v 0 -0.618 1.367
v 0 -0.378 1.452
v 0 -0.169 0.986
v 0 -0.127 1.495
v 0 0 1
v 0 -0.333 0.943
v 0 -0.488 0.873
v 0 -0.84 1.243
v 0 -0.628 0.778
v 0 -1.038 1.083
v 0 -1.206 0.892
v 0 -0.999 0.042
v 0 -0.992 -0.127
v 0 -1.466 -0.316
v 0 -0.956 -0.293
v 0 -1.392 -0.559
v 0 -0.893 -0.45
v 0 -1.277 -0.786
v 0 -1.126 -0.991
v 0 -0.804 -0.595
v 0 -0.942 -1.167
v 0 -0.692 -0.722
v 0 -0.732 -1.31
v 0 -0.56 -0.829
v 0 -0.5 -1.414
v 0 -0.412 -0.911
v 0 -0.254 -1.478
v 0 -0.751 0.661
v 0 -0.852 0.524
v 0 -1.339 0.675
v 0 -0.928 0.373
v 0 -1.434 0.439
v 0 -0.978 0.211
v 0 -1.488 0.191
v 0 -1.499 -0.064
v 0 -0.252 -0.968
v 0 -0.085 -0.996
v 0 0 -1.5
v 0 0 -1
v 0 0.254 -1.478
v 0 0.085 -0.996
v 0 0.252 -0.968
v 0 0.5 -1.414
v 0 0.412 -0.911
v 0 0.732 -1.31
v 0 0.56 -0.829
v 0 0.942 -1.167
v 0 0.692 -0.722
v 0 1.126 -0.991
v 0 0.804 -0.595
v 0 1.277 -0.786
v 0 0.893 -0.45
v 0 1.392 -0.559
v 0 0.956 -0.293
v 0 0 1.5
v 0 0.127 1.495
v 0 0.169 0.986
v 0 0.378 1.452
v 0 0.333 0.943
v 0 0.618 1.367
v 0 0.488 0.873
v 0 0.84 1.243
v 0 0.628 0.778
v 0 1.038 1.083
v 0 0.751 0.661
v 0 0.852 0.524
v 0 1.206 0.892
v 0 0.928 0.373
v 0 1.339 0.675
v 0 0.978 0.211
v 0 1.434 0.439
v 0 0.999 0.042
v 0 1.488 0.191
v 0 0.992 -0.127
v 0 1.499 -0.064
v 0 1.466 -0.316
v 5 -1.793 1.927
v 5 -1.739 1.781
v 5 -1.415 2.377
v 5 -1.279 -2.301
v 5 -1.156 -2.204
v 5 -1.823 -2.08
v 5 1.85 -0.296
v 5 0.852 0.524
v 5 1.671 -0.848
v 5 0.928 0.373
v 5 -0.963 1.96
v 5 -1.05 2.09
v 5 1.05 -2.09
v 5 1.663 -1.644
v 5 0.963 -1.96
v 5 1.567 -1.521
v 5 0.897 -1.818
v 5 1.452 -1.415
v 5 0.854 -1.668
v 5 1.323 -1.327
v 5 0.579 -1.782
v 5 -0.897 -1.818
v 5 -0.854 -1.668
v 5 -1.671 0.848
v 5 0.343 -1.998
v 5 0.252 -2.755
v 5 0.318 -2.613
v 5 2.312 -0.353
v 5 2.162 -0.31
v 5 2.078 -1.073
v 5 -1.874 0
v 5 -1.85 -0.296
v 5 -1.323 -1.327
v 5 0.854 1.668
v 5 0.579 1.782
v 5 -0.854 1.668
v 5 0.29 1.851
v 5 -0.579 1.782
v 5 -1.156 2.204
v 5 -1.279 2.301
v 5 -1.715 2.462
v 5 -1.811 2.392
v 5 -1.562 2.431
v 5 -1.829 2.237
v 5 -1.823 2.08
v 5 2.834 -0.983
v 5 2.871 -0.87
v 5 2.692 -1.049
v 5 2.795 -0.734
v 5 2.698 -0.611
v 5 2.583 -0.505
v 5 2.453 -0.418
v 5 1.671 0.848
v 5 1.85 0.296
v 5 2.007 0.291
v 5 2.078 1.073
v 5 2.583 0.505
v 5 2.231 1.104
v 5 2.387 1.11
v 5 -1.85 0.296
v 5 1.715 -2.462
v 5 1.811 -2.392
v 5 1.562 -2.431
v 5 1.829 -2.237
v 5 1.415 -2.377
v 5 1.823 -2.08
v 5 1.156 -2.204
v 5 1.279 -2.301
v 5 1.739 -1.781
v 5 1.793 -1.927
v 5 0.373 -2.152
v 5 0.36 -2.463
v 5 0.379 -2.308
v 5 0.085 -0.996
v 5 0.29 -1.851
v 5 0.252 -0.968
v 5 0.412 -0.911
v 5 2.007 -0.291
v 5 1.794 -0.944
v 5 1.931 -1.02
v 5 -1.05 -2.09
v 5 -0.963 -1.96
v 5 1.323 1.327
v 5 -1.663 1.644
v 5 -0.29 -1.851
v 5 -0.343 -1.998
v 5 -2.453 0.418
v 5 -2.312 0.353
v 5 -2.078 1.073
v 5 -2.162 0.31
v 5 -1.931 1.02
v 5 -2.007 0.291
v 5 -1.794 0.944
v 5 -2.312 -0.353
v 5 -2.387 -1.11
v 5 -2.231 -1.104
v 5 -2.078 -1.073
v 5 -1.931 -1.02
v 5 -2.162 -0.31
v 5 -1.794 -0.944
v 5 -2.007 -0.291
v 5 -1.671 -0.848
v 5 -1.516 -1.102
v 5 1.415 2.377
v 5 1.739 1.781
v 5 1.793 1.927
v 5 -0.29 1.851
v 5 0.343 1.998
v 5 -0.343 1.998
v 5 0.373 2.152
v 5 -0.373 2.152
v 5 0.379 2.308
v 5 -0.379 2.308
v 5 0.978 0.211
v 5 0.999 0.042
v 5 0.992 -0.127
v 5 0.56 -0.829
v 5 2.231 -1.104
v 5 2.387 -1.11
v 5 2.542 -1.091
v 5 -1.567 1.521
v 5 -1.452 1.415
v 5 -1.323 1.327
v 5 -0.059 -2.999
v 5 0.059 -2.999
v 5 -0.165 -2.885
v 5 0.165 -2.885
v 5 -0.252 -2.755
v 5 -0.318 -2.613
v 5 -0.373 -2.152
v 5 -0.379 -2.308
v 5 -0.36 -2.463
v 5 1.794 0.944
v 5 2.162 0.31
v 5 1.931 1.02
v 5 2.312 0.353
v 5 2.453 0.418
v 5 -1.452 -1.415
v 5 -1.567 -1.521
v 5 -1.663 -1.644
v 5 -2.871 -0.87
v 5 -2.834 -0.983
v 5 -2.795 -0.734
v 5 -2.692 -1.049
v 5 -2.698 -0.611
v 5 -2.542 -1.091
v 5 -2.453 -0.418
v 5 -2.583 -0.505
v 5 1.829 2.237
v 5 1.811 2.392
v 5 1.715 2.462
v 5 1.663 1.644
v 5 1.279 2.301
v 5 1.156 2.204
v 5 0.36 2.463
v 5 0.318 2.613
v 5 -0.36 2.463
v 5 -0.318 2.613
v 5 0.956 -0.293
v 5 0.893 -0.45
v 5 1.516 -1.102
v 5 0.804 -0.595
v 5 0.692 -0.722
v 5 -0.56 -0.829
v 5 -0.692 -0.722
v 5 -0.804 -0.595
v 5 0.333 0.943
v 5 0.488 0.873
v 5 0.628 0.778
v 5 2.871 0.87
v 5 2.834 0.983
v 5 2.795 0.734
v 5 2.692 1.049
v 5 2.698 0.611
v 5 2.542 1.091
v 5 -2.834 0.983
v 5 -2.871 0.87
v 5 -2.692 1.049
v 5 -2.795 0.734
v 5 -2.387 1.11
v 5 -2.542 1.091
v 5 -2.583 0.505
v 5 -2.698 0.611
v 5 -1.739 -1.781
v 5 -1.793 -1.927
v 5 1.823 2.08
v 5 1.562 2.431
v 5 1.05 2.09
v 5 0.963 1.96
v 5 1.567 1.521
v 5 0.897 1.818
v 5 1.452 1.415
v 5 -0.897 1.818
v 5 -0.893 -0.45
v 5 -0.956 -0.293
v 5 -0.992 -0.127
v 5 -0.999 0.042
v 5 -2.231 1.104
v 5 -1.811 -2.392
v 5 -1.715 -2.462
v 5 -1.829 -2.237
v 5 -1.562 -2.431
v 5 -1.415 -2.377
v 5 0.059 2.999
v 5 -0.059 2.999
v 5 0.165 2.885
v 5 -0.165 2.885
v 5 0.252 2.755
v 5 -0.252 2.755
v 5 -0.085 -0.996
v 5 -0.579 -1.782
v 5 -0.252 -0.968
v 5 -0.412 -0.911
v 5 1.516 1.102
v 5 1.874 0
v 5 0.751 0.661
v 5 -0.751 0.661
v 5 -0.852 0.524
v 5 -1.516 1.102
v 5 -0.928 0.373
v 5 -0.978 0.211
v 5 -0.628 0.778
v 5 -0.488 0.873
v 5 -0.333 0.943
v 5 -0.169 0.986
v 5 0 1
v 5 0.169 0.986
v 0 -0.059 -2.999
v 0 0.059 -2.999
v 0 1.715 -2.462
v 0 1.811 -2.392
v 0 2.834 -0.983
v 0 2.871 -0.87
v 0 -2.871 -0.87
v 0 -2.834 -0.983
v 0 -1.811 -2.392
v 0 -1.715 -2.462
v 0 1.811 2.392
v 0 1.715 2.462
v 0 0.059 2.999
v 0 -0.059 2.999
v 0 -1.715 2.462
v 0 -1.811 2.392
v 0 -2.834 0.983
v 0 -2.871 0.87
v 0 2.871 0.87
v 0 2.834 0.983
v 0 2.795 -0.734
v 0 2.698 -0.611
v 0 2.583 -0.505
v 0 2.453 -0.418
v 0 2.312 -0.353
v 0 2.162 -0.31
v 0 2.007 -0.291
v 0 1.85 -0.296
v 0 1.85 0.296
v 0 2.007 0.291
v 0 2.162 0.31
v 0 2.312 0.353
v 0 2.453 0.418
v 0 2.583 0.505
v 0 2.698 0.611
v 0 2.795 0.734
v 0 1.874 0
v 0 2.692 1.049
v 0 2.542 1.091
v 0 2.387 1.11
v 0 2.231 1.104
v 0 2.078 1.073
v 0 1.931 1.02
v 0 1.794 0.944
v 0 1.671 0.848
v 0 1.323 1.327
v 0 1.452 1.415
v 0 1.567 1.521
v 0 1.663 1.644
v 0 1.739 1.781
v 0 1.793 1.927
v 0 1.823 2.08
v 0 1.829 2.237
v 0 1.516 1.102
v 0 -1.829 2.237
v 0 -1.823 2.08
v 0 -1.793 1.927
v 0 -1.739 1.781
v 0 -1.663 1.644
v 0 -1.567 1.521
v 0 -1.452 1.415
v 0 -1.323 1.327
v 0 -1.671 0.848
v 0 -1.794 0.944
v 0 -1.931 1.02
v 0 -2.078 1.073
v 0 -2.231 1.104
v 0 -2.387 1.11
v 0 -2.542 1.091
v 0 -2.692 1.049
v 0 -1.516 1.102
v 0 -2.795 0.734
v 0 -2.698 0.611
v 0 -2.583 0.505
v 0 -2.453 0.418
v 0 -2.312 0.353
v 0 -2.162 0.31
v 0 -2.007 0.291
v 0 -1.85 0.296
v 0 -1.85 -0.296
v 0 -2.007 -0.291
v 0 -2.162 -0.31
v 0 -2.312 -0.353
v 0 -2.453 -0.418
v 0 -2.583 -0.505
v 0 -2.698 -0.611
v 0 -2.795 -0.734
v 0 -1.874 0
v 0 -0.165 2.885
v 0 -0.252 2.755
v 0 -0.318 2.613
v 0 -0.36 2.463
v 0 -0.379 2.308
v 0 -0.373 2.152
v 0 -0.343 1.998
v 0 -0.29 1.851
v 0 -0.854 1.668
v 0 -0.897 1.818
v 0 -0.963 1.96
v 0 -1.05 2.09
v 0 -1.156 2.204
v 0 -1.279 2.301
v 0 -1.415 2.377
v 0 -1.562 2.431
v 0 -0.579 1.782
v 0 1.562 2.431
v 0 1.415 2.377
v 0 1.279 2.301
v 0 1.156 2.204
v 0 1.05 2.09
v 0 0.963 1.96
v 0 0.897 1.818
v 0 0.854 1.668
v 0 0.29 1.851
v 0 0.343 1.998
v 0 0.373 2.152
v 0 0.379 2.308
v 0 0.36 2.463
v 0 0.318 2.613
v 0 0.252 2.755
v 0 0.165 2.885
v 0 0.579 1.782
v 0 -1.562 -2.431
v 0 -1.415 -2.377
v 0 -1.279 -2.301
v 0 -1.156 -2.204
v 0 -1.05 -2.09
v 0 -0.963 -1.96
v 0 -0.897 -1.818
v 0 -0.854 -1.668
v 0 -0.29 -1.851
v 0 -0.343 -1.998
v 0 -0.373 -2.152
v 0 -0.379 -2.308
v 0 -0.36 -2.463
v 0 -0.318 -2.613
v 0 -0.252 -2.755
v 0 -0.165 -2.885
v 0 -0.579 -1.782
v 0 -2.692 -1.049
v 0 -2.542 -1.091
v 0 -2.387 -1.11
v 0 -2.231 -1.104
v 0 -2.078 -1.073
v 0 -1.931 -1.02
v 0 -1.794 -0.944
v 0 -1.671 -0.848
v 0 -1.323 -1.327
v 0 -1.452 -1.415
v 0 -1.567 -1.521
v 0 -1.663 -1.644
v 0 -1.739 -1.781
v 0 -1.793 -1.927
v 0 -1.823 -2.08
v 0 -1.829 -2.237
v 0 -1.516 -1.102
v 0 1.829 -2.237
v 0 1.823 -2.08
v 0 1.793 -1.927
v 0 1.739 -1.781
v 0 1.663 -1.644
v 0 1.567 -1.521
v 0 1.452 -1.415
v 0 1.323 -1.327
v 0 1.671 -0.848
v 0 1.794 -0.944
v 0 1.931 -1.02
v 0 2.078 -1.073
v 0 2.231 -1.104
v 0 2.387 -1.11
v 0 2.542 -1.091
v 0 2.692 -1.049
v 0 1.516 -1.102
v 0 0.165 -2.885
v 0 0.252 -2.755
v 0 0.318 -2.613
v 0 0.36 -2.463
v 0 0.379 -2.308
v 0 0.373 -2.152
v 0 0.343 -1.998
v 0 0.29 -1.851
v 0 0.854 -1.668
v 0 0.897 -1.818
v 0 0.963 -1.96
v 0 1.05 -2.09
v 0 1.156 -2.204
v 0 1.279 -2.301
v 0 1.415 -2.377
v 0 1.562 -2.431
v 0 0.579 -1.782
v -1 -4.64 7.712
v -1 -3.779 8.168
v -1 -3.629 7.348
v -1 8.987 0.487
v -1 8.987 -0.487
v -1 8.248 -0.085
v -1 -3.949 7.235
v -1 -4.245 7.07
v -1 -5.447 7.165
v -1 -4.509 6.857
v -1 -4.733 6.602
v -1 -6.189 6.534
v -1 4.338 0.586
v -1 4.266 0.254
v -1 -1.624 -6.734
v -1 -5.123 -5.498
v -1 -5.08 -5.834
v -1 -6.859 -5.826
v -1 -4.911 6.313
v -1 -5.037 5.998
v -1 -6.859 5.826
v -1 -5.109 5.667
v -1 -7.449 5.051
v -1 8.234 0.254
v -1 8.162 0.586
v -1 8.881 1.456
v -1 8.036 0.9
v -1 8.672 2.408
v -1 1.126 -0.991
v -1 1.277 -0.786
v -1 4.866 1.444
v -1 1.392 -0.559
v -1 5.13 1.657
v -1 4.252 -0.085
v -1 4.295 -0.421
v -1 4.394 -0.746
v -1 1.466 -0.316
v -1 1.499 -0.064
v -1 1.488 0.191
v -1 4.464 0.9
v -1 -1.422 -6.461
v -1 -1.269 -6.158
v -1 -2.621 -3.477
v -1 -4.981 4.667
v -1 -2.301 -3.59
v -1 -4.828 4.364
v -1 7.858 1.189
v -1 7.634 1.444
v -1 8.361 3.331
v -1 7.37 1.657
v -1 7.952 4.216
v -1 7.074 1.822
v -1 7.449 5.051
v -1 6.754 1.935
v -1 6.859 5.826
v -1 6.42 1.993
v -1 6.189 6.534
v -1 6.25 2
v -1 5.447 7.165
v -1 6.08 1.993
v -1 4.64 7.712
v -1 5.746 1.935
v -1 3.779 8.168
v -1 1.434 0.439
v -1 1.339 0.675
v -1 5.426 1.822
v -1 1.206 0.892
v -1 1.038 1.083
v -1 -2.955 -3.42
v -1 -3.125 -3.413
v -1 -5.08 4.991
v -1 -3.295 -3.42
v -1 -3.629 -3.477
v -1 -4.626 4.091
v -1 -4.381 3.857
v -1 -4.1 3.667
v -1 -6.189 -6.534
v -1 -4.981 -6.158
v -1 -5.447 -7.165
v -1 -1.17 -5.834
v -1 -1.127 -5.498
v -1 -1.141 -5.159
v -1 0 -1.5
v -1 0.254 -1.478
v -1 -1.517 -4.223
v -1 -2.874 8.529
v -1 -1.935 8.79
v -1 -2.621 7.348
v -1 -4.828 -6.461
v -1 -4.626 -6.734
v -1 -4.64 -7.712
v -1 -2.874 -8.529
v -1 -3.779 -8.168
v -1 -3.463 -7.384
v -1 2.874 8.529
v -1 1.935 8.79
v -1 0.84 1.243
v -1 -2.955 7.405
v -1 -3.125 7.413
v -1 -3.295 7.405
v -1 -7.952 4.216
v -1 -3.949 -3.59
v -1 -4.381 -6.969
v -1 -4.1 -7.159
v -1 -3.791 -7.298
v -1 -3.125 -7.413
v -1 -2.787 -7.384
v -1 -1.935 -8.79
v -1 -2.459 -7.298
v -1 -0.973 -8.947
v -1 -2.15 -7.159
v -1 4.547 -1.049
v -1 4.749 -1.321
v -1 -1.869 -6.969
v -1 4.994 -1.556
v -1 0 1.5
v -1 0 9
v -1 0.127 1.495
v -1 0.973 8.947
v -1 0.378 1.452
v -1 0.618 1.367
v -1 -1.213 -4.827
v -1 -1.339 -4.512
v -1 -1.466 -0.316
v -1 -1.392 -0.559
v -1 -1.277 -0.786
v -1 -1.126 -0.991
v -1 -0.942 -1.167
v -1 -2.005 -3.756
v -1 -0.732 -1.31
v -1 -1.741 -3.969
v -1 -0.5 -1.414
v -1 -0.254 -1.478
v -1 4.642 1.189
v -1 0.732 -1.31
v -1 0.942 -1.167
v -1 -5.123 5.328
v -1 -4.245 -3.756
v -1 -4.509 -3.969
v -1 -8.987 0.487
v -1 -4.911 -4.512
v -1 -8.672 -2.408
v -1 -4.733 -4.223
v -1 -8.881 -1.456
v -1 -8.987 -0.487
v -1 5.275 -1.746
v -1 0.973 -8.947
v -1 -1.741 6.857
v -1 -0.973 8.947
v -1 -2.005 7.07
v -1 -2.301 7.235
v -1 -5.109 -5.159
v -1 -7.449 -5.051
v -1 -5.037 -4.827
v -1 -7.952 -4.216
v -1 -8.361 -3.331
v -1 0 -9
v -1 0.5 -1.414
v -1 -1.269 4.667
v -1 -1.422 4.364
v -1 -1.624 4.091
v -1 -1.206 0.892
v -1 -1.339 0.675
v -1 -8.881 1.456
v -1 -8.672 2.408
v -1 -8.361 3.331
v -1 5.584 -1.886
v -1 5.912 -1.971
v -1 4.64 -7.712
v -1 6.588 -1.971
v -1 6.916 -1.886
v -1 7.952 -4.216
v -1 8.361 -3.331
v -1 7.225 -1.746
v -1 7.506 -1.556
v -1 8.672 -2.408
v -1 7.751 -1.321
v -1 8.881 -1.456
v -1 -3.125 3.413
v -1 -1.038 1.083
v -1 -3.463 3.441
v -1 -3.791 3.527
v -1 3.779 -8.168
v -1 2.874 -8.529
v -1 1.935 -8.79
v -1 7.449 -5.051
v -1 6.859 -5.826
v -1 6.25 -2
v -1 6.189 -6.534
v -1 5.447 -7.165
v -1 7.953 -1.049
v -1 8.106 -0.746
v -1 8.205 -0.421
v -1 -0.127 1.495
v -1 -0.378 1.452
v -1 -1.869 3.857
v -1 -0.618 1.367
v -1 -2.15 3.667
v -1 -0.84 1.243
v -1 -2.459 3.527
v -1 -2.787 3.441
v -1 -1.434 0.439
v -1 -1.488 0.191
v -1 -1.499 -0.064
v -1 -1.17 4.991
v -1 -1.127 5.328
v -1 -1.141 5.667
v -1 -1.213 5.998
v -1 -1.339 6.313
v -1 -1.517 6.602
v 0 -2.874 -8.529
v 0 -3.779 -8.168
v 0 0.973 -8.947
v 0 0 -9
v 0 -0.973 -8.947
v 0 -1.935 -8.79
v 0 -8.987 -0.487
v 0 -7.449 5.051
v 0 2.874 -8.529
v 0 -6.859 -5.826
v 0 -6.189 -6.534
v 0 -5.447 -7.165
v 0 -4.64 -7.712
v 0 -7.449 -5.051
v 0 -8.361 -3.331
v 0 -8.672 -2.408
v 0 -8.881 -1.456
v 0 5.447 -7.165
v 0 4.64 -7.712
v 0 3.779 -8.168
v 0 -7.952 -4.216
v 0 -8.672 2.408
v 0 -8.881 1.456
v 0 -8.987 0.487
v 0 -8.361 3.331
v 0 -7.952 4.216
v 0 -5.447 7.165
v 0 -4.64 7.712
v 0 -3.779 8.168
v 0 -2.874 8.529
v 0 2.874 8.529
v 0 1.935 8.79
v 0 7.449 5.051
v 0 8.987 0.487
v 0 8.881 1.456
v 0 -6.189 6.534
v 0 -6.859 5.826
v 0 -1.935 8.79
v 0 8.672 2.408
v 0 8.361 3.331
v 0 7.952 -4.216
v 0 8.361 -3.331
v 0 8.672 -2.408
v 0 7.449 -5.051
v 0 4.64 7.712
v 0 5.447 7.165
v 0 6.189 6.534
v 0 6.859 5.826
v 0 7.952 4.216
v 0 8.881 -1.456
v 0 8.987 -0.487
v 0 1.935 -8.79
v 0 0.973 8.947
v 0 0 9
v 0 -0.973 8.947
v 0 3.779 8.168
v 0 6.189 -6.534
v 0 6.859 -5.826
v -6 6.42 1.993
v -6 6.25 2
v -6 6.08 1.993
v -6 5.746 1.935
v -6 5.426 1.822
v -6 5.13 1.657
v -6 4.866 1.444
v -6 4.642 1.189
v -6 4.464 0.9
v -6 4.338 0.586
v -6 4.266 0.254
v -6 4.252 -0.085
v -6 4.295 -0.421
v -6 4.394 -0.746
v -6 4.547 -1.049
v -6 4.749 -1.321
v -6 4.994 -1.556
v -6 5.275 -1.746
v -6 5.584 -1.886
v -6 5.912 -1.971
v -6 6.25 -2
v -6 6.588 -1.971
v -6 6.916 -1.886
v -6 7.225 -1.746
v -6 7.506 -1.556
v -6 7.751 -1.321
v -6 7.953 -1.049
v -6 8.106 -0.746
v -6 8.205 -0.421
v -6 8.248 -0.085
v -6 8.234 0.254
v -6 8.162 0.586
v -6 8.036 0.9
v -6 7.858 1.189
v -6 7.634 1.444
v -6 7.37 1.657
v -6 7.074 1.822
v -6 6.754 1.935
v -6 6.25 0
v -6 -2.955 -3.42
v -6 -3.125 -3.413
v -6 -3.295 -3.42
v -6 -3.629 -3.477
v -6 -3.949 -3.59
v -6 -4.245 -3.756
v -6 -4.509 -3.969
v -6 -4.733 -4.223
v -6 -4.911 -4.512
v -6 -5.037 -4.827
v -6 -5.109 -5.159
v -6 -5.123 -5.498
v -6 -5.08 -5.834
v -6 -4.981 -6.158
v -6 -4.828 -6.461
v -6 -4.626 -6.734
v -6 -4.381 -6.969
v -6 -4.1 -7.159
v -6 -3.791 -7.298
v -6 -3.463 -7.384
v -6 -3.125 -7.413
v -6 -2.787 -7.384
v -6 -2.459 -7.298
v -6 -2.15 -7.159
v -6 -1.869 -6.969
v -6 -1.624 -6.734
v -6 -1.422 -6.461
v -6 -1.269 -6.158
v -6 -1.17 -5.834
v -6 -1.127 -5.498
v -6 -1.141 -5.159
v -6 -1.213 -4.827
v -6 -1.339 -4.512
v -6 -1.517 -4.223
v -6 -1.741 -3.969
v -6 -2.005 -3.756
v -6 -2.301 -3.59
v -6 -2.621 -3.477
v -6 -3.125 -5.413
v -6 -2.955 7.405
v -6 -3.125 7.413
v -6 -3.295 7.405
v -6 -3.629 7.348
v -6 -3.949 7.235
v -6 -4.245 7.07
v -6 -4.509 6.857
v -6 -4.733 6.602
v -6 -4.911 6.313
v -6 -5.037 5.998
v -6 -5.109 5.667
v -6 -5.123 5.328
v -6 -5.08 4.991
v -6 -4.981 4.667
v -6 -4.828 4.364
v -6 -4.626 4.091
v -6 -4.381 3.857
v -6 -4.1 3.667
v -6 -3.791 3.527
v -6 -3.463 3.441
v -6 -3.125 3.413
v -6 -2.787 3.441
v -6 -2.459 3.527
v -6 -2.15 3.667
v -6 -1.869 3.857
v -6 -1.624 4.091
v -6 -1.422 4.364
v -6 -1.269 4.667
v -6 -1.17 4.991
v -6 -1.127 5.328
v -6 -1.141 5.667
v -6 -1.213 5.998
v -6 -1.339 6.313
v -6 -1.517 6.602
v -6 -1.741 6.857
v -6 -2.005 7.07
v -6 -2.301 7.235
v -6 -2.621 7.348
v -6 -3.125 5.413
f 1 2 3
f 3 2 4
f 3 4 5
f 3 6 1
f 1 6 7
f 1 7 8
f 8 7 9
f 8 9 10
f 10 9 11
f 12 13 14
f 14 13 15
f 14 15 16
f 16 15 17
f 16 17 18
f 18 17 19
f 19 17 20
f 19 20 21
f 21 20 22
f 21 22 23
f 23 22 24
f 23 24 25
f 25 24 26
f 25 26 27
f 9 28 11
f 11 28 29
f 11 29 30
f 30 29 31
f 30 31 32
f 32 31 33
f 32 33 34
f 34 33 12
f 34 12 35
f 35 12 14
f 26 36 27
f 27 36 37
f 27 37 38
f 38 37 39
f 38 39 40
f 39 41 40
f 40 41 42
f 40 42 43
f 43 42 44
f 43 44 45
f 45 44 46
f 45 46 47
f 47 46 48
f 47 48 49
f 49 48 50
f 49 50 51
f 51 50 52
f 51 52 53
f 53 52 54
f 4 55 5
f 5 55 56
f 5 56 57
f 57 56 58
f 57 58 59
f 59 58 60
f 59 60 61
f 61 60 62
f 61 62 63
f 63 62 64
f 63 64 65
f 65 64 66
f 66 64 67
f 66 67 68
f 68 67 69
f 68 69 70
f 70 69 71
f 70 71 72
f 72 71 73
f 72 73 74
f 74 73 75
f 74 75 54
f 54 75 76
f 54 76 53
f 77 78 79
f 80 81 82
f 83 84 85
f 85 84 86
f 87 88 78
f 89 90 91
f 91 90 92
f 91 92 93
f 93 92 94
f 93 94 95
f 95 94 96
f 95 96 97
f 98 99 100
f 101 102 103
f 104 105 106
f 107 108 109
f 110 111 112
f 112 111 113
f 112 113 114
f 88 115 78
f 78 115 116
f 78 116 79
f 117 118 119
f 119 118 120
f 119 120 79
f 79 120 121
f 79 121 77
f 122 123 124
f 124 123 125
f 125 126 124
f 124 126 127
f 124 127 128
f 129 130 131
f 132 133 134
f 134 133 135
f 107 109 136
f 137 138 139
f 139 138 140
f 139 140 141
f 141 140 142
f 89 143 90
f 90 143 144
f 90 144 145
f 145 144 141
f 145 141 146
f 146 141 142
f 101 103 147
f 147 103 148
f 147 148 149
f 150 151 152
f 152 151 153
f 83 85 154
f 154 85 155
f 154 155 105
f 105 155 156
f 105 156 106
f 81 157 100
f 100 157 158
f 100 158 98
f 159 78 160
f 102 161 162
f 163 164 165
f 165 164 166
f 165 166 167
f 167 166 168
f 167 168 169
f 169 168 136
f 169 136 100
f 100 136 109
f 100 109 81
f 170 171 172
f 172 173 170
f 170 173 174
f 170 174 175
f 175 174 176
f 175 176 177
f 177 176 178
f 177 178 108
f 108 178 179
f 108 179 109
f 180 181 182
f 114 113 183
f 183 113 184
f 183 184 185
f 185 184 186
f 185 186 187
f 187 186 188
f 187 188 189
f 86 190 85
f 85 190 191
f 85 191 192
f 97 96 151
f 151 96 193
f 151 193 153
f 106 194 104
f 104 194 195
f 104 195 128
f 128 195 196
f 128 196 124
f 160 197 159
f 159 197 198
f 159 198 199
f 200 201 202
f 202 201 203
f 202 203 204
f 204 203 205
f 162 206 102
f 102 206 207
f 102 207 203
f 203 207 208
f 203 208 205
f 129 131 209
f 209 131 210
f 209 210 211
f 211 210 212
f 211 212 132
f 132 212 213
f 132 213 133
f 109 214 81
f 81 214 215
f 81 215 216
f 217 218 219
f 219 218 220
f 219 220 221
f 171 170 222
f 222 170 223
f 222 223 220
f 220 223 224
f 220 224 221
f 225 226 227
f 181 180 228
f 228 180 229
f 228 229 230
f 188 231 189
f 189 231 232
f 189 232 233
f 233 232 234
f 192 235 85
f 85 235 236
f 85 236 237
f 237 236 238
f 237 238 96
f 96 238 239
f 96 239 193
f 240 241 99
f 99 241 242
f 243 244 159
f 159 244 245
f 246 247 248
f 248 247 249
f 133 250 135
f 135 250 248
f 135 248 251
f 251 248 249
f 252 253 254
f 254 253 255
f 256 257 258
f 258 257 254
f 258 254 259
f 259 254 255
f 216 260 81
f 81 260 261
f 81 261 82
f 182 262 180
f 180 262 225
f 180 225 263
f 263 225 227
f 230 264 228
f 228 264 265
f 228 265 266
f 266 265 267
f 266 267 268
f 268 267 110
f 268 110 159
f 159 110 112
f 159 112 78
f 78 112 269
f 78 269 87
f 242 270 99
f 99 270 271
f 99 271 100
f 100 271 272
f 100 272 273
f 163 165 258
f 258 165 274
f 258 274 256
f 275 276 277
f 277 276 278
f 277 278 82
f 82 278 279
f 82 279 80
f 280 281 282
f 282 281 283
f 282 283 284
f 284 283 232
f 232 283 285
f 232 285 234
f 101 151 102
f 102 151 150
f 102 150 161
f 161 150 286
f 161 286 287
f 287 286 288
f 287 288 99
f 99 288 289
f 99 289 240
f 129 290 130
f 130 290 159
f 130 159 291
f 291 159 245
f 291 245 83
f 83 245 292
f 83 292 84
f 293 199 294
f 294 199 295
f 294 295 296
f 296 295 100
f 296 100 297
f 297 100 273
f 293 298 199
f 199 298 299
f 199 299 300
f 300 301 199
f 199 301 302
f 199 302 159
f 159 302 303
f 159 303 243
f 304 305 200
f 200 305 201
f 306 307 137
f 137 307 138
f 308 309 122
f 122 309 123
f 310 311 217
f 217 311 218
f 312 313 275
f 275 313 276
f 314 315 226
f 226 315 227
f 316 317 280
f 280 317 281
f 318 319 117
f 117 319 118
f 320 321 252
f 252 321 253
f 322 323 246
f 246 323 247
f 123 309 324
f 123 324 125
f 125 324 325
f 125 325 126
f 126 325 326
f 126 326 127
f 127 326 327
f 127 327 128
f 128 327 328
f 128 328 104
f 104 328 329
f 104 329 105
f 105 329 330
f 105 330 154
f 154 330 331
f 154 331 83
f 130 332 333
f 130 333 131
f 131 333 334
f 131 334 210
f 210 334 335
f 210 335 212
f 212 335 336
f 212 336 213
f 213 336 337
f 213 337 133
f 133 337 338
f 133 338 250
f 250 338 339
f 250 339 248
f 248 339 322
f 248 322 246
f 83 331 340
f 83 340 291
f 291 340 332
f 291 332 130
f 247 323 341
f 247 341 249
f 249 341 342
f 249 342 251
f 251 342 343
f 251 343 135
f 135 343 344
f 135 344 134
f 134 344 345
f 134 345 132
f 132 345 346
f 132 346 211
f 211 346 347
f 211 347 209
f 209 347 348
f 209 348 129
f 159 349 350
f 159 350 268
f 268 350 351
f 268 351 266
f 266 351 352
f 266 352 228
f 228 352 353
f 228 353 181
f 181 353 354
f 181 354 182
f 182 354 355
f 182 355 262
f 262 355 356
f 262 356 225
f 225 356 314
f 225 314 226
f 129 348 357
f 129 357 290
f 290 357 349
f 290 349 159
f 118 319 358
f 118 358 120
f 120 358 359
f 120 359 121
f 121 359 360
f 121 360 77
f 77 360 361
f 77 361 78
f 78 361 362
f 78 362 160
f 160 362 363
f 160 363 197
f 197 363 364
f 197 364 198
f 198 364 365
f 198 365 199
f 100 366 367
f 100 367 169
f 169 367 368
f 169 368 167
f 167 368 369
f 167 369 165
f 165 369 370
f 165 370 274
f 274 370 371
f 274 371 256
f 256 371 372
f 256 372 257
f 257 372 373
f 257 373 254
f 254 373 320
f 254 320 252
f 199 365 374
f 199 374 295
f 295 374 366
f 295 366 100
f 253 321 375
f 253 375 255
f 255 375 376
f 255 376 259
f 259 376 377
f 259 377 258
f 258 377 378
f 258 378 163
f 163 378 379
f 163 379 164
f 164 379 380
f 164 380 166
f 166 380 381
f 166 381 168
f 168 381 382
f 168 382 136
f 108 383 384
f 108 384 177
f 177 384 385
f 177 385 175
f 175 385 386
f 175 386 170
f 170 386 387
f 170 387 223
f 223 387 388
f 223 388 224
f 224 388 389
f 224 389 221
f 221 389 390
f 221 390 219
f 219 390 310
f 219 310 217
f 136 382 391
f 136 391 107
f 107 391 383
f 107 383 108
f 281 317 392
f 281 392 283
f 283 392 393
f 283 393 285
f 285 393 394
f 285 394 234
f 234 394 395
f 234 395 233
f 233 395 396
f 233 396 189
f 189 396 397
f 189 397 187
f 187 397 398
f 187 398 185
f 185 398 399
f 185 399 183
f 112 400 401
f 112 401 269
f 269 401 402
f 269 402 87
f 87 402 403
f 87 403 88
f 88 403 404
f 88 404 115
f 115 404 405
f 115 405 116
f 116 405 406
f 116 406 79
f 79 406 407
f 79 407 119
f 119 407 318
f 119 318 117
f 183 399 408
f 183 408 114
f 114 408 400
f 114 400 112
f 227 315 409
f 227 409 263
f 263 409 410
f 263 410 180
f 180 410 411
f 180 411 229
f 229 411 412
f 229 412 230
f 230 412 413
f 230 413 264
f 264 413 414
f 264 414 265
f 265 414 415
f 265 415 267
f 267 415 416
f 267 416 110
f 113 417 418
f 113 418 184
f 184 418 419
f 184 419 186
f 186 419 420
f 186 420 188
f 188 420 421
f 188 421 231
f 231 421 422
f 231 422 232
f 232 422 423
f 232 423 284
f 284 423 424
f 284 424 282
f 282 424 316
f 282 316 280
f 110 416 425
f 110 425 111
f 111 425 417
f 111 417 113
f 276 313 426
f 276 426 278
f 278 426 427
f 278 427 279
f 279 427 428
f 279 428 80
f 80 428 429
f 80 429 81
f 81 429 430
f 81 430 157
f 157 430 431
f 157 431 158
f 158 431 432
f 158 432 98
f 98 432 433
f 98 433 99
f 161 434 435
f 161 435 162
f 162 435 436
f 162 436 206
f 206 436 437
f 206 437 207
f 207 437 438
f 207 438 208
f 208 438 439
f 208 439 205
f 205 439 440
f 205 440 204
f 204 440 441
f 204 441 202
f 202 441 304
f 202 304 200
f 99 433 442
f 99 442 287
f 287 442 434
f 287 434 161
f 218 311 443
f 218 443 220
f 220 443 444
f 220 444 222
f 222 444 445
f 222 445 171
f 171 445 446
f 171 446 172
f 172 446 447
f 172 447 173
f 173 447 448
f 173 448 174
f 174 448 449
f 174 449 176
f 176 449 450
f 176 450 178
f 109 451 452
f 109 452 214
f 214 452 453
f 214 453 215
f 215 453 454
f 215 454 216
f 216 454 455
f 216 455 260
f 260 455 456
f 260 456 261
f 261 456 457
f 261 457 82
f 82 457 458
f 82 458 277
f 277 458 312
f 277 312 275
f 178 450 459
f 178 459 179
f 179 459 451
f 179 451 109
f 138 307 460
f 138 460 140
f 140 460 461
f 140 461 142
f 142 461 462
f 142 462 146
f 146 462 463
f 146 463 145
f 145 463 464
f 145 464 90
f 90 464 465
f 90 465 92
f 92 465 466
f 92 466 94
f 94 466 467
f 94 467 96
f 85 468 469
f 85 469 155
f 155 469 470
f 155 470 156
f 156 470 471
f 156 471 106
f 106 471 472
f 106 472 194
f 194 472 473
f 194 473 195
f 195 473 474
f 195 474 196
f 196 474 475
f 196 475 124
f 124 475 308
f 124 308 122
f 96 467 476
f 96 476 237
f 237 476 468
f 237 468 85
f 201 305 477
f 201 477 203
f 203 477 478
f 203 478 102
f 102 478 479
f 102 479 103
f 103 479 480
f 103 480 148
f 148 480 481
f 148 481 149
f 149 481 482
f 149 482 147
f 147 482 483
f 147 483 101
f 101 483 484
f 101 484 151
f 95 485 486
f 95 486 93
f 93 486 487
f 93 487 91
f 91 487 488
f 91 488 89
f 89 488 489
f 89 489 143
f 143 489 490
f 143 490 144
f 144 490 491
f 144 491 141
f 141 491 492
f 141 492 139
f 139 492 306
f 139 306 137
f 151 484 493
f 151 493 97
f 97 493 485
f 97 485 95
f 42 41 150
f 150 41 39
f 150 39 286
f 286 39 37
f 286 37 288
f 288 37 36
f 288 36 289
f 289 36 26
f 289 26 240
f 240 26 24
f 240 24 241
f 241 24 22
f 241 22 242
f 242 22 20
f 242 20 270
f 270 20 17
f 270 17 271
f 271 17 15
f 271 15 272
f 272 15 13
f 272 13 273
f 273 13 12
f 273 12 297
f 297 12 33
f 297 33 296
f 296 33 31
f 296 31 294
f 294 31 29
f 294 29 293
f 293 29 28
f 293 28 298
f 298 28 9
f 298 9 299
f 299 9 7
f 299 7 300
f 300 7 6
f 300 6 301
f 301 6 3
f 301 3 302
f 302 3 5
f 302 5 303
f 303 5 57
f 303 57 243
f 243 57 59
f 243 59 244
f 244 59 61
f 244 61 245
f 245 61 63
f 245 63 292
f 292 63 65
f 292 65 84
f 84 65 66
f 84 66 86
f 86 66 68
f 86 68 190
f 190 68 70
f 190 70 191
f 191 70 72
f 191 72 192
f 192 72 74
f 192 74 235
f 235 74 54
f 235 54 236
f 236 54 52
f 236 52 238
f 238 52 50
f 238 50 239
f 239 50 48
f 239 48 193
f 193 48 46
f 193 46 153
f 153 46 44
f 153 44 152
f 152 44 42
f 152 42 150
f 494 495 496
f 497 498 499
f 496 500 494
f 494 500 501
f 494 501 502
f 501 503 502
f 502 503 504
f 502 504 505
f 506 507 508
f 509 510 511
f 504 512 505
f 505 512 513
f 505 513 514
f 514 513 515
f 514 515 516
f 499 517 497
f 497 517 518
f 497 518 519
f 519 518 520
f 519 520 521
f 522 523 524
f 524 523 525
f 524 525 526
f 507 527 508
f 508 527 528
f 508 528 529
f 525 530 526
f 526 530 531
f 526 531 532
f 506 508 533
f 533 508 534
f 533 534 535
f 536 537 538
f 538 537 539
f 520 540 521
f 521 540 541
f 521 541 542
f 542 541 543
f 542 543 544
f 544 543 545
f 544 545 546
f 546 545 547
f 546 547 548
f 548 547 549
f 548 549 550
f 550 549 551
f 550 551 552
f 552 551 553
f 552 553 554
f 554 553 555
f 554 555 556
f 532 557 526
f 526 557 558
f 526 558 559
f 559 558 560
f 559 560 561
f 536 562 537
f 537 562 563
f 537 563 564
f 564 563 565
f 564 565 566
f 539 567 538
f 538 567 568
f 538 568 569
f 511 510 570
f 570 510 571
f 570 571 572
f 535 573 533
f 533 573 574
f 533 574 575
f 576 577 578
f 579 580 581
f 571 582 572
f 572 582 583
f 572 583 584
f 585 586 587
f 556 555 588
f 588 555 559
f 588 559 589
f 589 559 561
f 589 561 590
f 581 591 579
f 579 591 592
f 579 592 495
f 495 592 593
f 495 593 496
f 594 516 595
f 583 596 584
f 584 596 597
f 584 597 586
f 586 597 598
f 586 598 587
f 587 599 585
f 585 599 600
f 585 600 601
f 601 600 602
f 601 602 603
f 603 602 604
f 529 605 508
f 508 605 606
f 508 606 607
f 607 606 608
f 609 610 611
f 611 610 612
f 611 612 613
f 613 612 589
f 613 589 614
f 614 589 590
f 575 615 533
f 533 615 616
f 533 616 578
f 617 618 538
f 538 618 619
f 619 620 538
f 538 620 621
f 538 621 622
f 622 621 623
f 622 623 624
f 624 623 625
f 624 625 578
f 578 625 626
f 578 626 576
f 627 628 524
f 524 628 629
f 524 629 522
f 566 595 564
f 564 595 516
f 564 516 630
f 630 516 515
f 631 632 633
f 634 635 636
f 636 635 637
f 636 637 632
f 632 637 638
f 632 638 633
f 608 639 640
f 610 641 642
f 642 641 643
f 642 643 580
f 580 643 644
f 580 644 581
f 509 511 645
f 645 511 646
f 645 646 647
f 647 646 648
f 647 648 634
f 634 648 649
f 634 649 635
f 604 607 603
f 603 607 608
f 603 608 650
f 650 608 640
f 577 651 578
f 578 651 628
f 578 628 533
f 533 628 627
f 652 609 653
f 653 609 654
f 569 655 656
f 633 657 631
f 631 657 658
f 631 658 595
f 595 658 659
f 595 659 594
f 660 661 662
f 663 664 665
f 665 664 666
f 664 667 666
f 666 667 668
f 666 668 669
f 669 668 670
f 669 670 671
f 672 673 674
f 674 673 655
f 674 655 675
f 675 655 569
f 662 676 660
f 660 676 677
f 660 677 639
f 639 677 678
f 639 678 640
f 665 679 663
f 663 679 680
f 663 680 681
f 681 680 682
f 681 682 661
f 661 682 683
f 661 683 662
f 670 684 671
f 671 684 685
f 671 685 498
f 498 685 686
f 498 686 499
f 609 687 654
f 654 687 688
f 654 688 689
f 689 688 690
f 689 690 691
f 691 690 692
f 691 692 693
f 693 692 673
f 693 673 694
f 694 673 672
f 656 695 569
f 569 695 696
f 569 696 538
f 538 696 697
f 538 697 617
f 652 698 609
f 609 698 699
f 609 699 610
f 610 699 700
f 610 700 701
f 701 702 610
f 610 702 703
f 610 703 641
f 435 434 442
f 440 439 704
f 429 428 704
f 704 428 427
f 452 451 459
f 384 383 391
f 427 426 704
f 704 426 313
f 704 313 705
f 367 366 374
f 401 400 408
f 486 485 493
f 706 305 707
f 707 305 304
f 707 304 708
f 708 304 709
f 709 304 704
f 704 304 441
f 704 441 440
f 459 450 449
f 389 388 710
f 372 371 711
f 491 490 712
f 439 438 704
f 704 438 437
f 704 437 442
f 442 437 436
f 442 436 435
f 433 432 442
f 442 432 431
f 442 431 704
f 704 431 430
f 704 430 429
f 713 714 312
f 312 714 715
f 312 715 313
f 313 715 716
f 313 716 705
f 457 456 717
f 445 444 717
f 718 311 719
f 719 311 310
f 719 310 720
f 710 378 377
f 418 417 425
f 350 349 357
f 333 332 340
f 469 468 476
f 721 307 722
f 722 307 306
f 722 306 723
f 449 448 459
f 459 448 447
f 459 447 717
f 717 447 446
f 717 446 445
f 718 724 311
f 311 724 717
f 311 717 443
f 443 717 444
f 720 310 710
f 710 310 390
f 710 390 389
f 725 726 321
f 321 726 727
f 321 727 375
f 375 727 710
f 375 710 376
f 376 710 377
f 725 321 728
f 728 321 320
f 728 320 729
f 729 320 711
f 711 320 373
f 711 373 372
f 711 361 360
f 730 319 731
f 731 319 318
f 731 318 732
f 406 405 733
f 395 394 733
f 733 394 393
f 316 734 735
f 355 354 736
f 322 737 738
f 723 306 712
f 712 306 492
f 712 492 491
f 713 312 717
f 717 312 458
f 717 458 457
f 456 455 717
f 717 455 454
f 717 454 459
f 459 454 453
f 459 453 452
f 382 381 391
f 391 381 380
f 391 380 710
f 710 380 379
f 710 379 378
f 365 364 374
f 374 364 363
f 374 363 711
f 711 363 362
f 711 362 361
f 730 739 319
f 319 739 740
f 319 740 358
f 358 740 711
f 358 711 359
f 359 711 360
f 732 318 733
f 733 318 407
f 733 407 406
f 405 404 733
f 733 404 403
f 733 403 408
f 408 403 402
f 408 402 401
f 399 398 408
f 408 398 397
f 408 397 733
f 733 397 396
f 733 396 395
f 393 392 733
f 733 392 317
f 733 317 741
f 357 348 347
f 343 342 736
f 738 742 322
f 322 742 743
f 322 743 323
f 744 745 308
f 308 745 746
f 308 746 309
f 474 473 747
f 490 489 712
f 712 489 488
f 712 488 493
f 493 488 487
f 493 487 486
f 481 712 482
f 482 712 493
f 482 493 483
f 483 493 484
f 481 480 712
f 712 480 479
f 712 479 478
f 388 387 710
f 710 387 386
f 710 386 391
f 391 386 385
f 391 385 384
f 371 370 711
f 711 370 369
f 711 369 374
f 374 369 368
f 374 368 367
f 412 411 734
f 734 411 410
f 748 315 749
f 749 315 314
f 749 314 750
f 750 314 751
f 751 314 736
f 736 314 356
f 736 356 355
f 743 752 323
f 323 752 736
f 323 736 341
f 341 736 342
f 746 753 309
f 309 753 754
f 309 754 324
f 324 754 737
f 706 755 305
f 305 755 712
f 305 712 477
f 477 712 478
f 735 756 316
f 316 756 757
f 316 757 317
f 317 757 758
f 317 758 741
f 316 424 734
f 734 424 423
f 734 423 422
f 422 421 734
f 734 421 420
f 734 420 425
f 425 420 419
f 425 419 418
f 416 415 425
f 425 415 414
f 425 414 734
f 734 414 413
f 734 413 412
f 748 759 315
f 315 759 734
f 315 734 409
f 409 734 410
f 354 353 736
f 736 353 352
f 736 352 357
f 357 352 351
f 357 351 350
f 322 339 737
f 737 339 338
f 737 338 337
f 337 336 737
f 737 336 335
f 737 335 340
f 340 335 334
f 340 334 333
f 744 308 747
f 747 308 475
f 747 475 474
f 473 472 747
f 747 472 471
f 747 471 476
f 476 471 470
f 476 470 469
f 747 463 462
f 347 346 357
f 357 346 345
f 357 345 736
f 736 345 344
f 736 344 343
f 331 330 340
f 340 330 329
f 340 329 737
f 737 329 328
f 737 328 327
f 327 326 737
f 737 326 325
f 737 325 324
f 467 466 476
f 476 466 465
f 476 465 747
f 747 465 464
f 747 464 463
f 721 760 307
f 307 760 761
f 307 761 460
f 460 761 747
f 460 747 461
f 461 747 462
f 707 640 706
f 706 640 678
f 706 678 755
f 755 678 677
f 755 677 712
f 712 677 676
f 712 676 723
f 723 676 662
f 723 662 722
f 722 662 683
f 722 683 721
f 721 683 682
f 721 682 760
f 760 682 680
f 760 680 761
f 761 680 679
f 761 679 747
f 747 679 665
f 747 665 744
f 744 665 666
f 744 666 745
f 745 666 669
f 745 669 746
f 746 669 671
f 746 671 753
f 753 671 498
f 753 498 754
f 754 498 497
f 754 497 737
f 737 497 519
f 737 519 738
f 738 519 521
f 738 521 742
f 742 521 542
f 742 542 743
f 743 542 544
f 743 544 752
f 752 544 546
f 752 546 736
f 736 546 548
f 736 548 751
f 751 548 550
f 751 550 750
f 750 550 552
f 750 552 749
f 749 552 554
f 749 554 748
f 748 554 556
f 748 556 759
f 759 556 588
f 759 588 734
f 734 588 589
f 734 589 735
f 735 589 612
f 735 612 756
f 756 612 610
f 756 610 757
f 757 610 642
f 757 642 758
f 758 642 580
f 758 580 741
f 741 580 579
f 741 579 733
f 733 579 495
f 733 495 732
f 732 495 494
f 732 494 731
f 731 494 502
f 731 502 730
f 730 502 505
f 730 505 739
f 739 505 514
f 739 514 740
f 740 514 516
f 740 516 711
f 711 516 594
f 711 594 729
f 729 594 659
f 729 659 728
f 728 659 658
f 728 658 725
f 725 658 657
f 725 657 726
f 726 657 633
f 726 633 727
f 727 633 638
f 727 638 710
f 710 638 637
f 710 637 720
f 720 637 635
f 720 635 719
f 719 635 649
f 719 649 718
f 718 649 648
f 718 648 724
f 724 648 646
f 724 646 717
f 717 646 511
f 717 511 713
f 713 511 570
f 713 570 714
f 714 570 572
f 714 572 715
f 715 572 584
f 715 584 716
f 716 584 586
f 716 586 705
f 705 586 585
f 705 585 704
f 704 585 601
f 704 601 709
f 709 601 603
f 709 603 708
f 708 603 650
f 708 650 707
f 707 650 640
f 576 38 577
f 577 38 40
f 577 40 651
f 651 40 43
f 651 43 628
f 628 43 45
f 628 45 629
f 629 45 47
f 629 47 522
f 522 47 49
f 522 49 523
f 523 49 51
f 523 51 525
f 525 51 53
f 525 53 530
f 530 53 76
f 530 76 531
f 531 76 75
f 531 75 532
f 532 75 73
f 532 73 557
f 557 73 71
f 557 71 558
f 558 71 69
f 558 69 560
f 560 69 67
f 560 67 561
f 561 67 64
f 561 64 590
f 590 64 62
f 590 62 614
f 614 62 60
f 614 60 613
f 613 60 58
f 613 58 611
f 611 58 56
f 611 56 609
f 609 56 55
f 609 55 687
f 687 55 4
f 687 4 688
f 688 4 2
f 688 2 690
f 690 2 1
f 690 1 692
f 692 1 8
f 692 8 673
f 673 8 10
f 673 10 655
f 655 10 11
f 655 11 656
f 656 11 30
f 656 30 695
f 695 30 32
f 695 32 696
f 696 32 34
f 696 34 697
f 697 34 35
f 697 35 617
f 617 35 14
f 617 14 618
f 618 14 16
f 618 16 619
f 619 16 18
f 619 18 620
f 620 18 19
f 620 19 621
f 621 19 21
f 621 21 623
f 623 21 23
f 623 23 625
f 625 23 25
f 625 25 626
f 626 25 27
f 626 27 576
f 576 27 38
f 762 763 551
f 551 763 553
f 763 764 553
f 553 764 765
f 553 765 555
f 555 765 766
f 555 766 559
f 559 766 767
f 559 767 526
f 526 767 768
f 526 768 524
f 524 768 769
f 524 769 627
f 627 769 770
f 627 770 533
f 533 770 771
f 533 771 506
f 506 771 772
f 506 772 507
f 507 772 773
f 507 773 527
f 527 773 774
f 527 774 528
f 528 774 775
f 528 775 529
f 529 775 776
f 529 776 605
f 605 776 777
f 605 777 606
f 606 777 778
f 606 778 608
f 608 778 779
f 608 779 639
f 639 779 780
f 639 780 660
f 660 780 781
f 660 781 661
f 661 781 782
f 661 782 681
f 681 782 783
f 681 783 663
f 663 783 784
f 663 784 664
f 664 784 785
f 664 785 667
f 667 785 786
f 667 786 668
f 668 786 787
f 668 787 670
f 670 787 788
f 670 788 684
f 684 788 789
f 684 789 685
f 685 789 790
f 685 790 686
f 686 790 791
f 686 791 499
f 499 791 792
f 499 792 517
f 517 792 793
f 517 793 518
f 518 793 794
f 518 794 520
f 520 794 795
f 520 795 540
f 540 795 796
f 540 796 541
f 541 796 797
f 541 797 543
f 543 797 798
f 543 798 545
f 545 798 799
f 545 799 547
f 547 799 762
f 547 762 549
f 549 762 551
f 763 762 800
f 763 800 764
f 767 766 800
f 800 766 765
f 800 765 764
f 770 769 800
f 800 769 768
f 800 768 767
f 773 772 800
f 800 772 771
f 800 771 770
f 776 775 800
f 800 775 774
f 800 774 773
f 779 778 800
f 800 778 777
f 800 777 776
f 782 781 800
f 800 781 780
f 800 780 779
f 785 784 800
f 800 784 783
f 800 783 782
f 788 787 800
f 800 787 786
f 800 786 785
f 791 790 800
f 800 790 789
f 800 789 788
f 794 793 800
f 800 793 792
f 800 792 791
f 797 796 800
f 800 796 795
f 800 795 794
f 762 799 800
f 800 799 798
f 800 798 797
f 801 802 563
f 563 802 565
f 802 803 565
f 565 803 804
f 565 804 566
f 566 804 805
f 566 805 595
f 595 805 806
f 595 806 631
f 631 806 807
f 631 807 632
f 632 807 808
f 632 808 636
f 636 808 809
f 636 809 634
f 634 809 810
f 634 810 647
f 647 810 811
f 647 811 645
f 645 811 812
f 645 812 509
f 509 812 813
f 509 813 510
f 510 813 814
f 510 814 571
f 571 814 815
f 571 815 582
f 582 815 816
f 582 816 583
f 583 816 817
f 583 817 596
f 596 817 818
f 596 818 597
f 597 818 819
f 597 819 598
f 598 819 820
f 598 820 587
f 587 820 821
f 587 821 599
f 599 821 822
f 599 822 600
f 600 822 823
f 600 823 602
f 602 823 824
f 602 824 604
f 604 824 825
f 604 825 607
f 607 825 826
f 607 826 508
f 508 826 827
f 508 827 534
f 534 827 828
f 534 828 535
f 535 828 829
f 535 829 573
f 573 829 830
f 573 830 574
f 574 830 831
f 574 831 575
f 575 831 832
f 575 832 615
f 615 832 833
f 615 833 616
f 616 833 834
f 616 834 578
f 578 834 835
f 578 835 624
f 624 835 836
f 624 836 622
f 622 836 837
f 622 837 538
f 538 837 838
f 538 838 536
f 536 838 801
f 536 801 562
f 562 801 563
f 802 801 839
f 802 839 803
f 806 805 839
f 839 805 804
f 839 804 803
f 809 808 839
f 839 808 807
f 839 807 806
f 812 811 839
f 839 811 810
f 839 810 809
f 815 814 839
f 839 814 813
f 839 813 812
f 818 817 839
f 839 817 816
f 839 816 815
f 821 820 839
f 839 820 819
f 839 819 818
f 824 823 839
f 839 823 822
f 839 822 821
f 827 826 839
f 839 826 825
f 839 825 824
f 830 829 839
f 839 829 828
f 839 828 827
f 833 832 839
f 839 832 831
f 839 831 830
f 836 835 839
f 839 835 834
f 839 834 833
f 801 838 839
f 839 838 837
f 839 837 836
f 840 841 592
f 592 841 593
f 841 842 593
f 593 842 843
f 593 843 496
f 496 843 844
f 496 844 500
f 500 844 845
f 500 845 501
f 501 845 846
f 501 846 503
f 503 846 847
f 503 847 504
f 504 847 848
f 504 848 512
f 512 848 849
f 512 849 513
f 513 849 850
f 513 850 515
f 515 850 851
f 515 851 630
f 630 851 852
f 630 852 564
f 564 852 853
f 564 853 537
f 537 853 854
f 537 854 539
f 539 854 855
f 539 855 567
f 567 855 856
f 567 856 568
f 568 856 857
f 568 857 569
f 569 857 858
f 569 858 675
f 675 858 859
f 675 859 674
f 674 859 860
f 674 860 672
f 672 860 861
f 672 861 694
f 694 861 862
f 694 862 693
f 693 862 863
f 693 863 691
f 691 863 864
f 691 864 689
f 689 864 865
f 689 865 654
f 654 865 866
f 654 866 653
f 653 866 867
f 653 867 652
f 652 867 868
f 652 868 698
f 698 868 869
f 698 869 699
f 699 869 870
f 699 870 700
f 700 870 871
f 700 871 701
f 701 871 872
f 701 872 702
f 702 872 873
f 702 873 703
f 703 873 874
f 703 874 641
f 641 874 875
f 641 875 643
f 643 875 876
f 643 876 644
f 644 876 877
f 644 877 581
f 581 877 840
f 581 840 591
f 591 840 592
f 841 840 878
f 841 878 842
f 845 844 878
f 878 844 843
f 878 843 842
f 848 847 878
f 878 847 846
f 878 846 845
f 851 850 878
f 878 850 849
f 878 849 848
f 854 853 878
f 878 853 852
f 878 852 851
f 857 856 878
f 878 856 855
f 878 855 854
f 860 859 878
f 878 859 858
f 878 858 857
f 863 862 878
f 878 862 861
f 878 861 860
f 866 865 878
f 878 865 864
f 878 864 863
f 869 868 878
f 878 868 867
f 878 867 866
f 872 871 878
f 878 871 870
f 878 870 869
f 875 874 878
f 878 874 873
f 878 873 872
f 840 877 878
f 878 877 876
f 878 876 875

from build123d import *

# Parameters (mm, degrees)
BASPROSKE_W     = 5
BASPROSKE_H     = 3
TOOTHCUT_DEPTH  = 7.557438524
TEETHCUTS_COUNT = 10
TEETHCUTS_ANGLE = 324
BORSKE_R        = 1
BORE_DEPTH      = 50.000762
SKETCH_1_R      = 9
SKETCH_1_R_2    = 1.5
EXTRUDE_1_DEPTH = 1
EXTRUDE_START   = 1
SKETCH_1_3_R    = 2
EXTRUDE_2_DEPTH = 5


with BuildPart() as part:
    # BasProSke → Base-Revolve (revolve)
    with BuildSketch(Plane(origin=(0, 0, 0), x_dir=(1, 0, 0), z_dir=(0, 1, 0)), mode=Mode.PRIVATE) as base_revolve_sk:
        with Locations((2.5, 1.5)):
            Rectangle(BASPROSKE_W, BASPROSKE_H)
    revolve(base_revolve_sk.sketch.rotate(Axis((-10, 0, 0), (1, 0, 0)), 180), axis=Axis((-10, 0, 0), (1, 0, 0)))

    # TooCutSke → ToothCut (cut, through all)
    with BuildSketch(Plane(origin=(0, 0, 0), x_dir=(0, 0, -1), z_dir=(1, 0, 0))):
        with BuildLine():
            ThreePointArc((0.296449938, 1.850403587), (0, 1.874), (-0.296449938, 1.850403587))
            ThreePointArc((-0.296449938, 1.850403587), (-0.428089565, 2.470295585), (-0.905889751, 2.886591228))
            ThreePointArc((-0.905889751, 2.886591228), (0, 3.0254), (0.905889751, 2.886591228))
            ThreePointArc((0.905889751, 2.886591228), (0.428089565, 2.470295585), (0.296449938, 1.850403587))
        make_face()
    toothcut = extrude(amount=TOOTHCUT_DEPTH, mode=Mode.SUBTRACT)

    # TeethCuts: ToothCut ×10 about axis
    teethcuts_axis = Axis((-10, 0, 0), (1, 0, 0))
    for i in range(1, TEETHCUTS_COUNT):
        add(toothcut.rotate(teethcuts_axis, i * TEETHCUTS_ANGLE / (TEETHCUTS_COUNT - 1)), mode=Mode.SUBTRACT)

    # BorSke → Bore (cut, symmetric)
    with BuildSketch(Plane(origin=(0, 0, 0), x_dir=(0, 0, -1), z_dir=(1, 0, 0))):
        with Locations(Location((0, 0, 0), (0, 0, 180))):
            Circle(BORSKE_R)
    extrude(amount=BORE_DEPTH, both=True, mode=Mode.SUBTRACT)

    # 草图1 → 凸台-拉伸1 (add)
    with BuildSketch(Plane.ZY):
        Circle(SKETCH_1_R)
        Circle(SKETCH_1_R_2, mode=Mode.SUBTRACT)
    extrude(amount=EXTRUDE_1_DEPTH)

    # 草图1<3> → 凸台-拉伸2 (add)
    with BuildSketch(Plane.ZY.offset(EXTRUDE_START)):
        with Locations((0, 6.25)):
            Circle(SKETCH_1_3_R)
        with Locations((-5.412658774, -3.125)):
            Circle(SKETCH_1_3_R)
        with Locations((5.412658774, -3.125)):
            Circle(SKETCH_1_3_R)
    extrude(amount=EXTRUDE_2_DEPTH)


solid = part.part
